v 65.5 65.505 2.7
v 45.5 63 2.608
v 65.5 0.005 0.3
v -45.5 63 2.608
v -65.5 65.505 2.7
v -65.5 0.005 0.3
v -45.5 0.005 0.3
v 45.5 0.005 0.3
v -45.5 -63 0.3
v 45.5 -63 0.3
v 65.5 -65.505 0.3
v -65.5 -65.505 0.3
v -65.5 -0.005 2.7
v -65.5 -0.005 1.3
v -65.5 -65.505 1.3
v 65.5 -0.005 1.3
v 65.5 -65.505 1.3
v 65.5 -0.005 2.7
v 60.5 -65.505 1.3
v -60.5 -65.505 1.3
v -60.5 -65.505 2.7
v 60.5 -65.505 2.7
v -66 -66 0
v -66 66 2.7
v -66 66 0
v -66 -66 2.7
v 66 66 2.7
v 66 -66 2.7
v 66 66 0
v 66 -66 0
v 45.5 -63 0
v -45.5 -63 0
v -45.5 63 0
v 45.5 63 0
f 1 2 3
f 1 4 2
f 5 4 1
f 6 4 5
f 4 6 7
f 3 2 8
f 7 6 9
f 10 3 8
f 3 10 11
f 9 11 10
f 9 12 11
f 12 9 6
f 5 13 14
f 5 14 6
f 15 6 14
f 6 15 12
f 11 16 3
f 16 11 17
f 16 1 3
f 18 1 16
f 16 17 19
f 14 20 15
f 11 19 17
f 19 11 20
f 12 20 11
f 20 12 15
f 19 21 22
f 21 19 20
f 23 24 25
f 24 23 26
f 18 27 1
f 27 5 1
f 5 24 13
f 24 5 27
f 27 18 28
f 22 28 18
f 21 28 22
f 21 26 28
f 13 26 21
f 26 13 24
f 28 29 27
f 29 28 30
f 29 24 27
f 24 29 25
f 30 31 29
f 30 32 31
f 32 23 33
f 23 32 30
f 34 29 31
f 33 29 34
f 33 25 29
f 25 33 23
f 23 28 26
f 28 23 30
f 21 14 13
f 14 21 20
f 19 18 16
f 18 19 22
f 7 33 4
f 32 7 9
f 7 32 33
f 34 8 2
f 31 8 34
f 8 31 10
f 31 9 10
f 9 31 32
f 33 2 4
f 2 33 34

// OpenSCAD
// Wall Mounted Single Card Holder For 13cm square photos for gameboy gallery (Derived from business card wall mount source)
// By Brian Khuu 2022-04-10
// Note: Adjusted to have enough space for command strips (2cmm on each side)

print_layer_height = 0.2;

// Businesscard
// Default values based on https://www.mbe.com.au/what-is-the-standard-business-card-size-in-australia/
businesscard_width = 131; // 130mm plus some tolerance
businesscard_height = 131; // 130mm plus some tolerance
businesscard_thickness = 1.0;

// Holder
wall_spacing = 1;
wall_card_grip = 10;
wall_x_count = 1; //2
wall_y_count = 1; //3

// Calc
wall_base = print_layer_height+0.1;
wall_top = print_layer_height*3+0.1;
wall_height = wall_base + businesscard_thickness + wall_top*2;


module cardWindowOutline()
{
    hull()
    {
        translate([0,businesscard_height/2,businesscard_thickness + wall_top*2])
        cube([businesscard_width, 0.01, 0.01], center = true);
        translate([0,0,0])
        cube([businesscard_width, 0.01, 0.01], center = true);
    }    
    hull()
    {
        translate([0,0,businesscard_thickness + wall_top*2])
        cube([businesscard_width, 0.01, 0.01], center = true);
        translate([0,-businesscard_height/2,0])
        cube([businesscard_width-wall_card_grip, 0.01, 0.01], center = true);
    }
}

module cardholder(reducePlastic=false)
{
    translate([0,0,wall_base+businesscard_thickness])
        rotate([2,0,0])
        %cube([130, 130, 0.1], center = true);

    difference()
    {
        translate([0,0,wall_height/2])
            cube([businesscard_width+wall_spacing, businesscard_height+wall_spacing, wall_height], center = true);
        
        // Card Slide
        translate([0,0,wall_base])
        translate([0,0,businesscard_thickness/2])
        {
            hull()
            {
                translate([0,businesscard_height/2,businesscard_thickness + wall_top*2])
                cube([businesscard_width, 0.01, businesscard_thickness], center = true);
                
                translate([0,0,0])
                cube([businesscard_width, 0.01, businesscard_thickness], center = true);
            }
            hull()
            {
                translate([0,-businesscard_height/2,0])
                cube([businesscard_width, 0.01, businesscard_thickness], center = true);
                
                cube([businesscard_width, 0.01, businesscard_thickness], center = true);
            }
        }
        
        // Card Window
        if (1)
        translate([0,0,wall_base+businesscard_thickness/2])
        {
            hull()
            {
                // Card Window Base
                cardWindowOutline();
                // Card Window Top
                translate([0,0,businesscard_thickness + wall_top * 2])
                    cardWindowOutline();
            }
        }
        
        // Reduce Plastic
        if (reducePlastic)
        translate([0,0,wall_base+businesscard_thickness/2+0.5])
        {
            cube([businesscard_width-40,businesscard_height-5, wall_height+1], center=true);
        }
    }
}

if (wall_x_count == 1 && wall_y_count == 1)
{
    cardholder(true);
}
else
{
    for (x = [1: 1 : wall_x_count])
        for (y = [1 : 1 : wall_y_count])
           translate([x*(businesscard_width+wall_spacing), y*(businesscard_height+wall_spacing), 0])
                cardholder(false);
}
